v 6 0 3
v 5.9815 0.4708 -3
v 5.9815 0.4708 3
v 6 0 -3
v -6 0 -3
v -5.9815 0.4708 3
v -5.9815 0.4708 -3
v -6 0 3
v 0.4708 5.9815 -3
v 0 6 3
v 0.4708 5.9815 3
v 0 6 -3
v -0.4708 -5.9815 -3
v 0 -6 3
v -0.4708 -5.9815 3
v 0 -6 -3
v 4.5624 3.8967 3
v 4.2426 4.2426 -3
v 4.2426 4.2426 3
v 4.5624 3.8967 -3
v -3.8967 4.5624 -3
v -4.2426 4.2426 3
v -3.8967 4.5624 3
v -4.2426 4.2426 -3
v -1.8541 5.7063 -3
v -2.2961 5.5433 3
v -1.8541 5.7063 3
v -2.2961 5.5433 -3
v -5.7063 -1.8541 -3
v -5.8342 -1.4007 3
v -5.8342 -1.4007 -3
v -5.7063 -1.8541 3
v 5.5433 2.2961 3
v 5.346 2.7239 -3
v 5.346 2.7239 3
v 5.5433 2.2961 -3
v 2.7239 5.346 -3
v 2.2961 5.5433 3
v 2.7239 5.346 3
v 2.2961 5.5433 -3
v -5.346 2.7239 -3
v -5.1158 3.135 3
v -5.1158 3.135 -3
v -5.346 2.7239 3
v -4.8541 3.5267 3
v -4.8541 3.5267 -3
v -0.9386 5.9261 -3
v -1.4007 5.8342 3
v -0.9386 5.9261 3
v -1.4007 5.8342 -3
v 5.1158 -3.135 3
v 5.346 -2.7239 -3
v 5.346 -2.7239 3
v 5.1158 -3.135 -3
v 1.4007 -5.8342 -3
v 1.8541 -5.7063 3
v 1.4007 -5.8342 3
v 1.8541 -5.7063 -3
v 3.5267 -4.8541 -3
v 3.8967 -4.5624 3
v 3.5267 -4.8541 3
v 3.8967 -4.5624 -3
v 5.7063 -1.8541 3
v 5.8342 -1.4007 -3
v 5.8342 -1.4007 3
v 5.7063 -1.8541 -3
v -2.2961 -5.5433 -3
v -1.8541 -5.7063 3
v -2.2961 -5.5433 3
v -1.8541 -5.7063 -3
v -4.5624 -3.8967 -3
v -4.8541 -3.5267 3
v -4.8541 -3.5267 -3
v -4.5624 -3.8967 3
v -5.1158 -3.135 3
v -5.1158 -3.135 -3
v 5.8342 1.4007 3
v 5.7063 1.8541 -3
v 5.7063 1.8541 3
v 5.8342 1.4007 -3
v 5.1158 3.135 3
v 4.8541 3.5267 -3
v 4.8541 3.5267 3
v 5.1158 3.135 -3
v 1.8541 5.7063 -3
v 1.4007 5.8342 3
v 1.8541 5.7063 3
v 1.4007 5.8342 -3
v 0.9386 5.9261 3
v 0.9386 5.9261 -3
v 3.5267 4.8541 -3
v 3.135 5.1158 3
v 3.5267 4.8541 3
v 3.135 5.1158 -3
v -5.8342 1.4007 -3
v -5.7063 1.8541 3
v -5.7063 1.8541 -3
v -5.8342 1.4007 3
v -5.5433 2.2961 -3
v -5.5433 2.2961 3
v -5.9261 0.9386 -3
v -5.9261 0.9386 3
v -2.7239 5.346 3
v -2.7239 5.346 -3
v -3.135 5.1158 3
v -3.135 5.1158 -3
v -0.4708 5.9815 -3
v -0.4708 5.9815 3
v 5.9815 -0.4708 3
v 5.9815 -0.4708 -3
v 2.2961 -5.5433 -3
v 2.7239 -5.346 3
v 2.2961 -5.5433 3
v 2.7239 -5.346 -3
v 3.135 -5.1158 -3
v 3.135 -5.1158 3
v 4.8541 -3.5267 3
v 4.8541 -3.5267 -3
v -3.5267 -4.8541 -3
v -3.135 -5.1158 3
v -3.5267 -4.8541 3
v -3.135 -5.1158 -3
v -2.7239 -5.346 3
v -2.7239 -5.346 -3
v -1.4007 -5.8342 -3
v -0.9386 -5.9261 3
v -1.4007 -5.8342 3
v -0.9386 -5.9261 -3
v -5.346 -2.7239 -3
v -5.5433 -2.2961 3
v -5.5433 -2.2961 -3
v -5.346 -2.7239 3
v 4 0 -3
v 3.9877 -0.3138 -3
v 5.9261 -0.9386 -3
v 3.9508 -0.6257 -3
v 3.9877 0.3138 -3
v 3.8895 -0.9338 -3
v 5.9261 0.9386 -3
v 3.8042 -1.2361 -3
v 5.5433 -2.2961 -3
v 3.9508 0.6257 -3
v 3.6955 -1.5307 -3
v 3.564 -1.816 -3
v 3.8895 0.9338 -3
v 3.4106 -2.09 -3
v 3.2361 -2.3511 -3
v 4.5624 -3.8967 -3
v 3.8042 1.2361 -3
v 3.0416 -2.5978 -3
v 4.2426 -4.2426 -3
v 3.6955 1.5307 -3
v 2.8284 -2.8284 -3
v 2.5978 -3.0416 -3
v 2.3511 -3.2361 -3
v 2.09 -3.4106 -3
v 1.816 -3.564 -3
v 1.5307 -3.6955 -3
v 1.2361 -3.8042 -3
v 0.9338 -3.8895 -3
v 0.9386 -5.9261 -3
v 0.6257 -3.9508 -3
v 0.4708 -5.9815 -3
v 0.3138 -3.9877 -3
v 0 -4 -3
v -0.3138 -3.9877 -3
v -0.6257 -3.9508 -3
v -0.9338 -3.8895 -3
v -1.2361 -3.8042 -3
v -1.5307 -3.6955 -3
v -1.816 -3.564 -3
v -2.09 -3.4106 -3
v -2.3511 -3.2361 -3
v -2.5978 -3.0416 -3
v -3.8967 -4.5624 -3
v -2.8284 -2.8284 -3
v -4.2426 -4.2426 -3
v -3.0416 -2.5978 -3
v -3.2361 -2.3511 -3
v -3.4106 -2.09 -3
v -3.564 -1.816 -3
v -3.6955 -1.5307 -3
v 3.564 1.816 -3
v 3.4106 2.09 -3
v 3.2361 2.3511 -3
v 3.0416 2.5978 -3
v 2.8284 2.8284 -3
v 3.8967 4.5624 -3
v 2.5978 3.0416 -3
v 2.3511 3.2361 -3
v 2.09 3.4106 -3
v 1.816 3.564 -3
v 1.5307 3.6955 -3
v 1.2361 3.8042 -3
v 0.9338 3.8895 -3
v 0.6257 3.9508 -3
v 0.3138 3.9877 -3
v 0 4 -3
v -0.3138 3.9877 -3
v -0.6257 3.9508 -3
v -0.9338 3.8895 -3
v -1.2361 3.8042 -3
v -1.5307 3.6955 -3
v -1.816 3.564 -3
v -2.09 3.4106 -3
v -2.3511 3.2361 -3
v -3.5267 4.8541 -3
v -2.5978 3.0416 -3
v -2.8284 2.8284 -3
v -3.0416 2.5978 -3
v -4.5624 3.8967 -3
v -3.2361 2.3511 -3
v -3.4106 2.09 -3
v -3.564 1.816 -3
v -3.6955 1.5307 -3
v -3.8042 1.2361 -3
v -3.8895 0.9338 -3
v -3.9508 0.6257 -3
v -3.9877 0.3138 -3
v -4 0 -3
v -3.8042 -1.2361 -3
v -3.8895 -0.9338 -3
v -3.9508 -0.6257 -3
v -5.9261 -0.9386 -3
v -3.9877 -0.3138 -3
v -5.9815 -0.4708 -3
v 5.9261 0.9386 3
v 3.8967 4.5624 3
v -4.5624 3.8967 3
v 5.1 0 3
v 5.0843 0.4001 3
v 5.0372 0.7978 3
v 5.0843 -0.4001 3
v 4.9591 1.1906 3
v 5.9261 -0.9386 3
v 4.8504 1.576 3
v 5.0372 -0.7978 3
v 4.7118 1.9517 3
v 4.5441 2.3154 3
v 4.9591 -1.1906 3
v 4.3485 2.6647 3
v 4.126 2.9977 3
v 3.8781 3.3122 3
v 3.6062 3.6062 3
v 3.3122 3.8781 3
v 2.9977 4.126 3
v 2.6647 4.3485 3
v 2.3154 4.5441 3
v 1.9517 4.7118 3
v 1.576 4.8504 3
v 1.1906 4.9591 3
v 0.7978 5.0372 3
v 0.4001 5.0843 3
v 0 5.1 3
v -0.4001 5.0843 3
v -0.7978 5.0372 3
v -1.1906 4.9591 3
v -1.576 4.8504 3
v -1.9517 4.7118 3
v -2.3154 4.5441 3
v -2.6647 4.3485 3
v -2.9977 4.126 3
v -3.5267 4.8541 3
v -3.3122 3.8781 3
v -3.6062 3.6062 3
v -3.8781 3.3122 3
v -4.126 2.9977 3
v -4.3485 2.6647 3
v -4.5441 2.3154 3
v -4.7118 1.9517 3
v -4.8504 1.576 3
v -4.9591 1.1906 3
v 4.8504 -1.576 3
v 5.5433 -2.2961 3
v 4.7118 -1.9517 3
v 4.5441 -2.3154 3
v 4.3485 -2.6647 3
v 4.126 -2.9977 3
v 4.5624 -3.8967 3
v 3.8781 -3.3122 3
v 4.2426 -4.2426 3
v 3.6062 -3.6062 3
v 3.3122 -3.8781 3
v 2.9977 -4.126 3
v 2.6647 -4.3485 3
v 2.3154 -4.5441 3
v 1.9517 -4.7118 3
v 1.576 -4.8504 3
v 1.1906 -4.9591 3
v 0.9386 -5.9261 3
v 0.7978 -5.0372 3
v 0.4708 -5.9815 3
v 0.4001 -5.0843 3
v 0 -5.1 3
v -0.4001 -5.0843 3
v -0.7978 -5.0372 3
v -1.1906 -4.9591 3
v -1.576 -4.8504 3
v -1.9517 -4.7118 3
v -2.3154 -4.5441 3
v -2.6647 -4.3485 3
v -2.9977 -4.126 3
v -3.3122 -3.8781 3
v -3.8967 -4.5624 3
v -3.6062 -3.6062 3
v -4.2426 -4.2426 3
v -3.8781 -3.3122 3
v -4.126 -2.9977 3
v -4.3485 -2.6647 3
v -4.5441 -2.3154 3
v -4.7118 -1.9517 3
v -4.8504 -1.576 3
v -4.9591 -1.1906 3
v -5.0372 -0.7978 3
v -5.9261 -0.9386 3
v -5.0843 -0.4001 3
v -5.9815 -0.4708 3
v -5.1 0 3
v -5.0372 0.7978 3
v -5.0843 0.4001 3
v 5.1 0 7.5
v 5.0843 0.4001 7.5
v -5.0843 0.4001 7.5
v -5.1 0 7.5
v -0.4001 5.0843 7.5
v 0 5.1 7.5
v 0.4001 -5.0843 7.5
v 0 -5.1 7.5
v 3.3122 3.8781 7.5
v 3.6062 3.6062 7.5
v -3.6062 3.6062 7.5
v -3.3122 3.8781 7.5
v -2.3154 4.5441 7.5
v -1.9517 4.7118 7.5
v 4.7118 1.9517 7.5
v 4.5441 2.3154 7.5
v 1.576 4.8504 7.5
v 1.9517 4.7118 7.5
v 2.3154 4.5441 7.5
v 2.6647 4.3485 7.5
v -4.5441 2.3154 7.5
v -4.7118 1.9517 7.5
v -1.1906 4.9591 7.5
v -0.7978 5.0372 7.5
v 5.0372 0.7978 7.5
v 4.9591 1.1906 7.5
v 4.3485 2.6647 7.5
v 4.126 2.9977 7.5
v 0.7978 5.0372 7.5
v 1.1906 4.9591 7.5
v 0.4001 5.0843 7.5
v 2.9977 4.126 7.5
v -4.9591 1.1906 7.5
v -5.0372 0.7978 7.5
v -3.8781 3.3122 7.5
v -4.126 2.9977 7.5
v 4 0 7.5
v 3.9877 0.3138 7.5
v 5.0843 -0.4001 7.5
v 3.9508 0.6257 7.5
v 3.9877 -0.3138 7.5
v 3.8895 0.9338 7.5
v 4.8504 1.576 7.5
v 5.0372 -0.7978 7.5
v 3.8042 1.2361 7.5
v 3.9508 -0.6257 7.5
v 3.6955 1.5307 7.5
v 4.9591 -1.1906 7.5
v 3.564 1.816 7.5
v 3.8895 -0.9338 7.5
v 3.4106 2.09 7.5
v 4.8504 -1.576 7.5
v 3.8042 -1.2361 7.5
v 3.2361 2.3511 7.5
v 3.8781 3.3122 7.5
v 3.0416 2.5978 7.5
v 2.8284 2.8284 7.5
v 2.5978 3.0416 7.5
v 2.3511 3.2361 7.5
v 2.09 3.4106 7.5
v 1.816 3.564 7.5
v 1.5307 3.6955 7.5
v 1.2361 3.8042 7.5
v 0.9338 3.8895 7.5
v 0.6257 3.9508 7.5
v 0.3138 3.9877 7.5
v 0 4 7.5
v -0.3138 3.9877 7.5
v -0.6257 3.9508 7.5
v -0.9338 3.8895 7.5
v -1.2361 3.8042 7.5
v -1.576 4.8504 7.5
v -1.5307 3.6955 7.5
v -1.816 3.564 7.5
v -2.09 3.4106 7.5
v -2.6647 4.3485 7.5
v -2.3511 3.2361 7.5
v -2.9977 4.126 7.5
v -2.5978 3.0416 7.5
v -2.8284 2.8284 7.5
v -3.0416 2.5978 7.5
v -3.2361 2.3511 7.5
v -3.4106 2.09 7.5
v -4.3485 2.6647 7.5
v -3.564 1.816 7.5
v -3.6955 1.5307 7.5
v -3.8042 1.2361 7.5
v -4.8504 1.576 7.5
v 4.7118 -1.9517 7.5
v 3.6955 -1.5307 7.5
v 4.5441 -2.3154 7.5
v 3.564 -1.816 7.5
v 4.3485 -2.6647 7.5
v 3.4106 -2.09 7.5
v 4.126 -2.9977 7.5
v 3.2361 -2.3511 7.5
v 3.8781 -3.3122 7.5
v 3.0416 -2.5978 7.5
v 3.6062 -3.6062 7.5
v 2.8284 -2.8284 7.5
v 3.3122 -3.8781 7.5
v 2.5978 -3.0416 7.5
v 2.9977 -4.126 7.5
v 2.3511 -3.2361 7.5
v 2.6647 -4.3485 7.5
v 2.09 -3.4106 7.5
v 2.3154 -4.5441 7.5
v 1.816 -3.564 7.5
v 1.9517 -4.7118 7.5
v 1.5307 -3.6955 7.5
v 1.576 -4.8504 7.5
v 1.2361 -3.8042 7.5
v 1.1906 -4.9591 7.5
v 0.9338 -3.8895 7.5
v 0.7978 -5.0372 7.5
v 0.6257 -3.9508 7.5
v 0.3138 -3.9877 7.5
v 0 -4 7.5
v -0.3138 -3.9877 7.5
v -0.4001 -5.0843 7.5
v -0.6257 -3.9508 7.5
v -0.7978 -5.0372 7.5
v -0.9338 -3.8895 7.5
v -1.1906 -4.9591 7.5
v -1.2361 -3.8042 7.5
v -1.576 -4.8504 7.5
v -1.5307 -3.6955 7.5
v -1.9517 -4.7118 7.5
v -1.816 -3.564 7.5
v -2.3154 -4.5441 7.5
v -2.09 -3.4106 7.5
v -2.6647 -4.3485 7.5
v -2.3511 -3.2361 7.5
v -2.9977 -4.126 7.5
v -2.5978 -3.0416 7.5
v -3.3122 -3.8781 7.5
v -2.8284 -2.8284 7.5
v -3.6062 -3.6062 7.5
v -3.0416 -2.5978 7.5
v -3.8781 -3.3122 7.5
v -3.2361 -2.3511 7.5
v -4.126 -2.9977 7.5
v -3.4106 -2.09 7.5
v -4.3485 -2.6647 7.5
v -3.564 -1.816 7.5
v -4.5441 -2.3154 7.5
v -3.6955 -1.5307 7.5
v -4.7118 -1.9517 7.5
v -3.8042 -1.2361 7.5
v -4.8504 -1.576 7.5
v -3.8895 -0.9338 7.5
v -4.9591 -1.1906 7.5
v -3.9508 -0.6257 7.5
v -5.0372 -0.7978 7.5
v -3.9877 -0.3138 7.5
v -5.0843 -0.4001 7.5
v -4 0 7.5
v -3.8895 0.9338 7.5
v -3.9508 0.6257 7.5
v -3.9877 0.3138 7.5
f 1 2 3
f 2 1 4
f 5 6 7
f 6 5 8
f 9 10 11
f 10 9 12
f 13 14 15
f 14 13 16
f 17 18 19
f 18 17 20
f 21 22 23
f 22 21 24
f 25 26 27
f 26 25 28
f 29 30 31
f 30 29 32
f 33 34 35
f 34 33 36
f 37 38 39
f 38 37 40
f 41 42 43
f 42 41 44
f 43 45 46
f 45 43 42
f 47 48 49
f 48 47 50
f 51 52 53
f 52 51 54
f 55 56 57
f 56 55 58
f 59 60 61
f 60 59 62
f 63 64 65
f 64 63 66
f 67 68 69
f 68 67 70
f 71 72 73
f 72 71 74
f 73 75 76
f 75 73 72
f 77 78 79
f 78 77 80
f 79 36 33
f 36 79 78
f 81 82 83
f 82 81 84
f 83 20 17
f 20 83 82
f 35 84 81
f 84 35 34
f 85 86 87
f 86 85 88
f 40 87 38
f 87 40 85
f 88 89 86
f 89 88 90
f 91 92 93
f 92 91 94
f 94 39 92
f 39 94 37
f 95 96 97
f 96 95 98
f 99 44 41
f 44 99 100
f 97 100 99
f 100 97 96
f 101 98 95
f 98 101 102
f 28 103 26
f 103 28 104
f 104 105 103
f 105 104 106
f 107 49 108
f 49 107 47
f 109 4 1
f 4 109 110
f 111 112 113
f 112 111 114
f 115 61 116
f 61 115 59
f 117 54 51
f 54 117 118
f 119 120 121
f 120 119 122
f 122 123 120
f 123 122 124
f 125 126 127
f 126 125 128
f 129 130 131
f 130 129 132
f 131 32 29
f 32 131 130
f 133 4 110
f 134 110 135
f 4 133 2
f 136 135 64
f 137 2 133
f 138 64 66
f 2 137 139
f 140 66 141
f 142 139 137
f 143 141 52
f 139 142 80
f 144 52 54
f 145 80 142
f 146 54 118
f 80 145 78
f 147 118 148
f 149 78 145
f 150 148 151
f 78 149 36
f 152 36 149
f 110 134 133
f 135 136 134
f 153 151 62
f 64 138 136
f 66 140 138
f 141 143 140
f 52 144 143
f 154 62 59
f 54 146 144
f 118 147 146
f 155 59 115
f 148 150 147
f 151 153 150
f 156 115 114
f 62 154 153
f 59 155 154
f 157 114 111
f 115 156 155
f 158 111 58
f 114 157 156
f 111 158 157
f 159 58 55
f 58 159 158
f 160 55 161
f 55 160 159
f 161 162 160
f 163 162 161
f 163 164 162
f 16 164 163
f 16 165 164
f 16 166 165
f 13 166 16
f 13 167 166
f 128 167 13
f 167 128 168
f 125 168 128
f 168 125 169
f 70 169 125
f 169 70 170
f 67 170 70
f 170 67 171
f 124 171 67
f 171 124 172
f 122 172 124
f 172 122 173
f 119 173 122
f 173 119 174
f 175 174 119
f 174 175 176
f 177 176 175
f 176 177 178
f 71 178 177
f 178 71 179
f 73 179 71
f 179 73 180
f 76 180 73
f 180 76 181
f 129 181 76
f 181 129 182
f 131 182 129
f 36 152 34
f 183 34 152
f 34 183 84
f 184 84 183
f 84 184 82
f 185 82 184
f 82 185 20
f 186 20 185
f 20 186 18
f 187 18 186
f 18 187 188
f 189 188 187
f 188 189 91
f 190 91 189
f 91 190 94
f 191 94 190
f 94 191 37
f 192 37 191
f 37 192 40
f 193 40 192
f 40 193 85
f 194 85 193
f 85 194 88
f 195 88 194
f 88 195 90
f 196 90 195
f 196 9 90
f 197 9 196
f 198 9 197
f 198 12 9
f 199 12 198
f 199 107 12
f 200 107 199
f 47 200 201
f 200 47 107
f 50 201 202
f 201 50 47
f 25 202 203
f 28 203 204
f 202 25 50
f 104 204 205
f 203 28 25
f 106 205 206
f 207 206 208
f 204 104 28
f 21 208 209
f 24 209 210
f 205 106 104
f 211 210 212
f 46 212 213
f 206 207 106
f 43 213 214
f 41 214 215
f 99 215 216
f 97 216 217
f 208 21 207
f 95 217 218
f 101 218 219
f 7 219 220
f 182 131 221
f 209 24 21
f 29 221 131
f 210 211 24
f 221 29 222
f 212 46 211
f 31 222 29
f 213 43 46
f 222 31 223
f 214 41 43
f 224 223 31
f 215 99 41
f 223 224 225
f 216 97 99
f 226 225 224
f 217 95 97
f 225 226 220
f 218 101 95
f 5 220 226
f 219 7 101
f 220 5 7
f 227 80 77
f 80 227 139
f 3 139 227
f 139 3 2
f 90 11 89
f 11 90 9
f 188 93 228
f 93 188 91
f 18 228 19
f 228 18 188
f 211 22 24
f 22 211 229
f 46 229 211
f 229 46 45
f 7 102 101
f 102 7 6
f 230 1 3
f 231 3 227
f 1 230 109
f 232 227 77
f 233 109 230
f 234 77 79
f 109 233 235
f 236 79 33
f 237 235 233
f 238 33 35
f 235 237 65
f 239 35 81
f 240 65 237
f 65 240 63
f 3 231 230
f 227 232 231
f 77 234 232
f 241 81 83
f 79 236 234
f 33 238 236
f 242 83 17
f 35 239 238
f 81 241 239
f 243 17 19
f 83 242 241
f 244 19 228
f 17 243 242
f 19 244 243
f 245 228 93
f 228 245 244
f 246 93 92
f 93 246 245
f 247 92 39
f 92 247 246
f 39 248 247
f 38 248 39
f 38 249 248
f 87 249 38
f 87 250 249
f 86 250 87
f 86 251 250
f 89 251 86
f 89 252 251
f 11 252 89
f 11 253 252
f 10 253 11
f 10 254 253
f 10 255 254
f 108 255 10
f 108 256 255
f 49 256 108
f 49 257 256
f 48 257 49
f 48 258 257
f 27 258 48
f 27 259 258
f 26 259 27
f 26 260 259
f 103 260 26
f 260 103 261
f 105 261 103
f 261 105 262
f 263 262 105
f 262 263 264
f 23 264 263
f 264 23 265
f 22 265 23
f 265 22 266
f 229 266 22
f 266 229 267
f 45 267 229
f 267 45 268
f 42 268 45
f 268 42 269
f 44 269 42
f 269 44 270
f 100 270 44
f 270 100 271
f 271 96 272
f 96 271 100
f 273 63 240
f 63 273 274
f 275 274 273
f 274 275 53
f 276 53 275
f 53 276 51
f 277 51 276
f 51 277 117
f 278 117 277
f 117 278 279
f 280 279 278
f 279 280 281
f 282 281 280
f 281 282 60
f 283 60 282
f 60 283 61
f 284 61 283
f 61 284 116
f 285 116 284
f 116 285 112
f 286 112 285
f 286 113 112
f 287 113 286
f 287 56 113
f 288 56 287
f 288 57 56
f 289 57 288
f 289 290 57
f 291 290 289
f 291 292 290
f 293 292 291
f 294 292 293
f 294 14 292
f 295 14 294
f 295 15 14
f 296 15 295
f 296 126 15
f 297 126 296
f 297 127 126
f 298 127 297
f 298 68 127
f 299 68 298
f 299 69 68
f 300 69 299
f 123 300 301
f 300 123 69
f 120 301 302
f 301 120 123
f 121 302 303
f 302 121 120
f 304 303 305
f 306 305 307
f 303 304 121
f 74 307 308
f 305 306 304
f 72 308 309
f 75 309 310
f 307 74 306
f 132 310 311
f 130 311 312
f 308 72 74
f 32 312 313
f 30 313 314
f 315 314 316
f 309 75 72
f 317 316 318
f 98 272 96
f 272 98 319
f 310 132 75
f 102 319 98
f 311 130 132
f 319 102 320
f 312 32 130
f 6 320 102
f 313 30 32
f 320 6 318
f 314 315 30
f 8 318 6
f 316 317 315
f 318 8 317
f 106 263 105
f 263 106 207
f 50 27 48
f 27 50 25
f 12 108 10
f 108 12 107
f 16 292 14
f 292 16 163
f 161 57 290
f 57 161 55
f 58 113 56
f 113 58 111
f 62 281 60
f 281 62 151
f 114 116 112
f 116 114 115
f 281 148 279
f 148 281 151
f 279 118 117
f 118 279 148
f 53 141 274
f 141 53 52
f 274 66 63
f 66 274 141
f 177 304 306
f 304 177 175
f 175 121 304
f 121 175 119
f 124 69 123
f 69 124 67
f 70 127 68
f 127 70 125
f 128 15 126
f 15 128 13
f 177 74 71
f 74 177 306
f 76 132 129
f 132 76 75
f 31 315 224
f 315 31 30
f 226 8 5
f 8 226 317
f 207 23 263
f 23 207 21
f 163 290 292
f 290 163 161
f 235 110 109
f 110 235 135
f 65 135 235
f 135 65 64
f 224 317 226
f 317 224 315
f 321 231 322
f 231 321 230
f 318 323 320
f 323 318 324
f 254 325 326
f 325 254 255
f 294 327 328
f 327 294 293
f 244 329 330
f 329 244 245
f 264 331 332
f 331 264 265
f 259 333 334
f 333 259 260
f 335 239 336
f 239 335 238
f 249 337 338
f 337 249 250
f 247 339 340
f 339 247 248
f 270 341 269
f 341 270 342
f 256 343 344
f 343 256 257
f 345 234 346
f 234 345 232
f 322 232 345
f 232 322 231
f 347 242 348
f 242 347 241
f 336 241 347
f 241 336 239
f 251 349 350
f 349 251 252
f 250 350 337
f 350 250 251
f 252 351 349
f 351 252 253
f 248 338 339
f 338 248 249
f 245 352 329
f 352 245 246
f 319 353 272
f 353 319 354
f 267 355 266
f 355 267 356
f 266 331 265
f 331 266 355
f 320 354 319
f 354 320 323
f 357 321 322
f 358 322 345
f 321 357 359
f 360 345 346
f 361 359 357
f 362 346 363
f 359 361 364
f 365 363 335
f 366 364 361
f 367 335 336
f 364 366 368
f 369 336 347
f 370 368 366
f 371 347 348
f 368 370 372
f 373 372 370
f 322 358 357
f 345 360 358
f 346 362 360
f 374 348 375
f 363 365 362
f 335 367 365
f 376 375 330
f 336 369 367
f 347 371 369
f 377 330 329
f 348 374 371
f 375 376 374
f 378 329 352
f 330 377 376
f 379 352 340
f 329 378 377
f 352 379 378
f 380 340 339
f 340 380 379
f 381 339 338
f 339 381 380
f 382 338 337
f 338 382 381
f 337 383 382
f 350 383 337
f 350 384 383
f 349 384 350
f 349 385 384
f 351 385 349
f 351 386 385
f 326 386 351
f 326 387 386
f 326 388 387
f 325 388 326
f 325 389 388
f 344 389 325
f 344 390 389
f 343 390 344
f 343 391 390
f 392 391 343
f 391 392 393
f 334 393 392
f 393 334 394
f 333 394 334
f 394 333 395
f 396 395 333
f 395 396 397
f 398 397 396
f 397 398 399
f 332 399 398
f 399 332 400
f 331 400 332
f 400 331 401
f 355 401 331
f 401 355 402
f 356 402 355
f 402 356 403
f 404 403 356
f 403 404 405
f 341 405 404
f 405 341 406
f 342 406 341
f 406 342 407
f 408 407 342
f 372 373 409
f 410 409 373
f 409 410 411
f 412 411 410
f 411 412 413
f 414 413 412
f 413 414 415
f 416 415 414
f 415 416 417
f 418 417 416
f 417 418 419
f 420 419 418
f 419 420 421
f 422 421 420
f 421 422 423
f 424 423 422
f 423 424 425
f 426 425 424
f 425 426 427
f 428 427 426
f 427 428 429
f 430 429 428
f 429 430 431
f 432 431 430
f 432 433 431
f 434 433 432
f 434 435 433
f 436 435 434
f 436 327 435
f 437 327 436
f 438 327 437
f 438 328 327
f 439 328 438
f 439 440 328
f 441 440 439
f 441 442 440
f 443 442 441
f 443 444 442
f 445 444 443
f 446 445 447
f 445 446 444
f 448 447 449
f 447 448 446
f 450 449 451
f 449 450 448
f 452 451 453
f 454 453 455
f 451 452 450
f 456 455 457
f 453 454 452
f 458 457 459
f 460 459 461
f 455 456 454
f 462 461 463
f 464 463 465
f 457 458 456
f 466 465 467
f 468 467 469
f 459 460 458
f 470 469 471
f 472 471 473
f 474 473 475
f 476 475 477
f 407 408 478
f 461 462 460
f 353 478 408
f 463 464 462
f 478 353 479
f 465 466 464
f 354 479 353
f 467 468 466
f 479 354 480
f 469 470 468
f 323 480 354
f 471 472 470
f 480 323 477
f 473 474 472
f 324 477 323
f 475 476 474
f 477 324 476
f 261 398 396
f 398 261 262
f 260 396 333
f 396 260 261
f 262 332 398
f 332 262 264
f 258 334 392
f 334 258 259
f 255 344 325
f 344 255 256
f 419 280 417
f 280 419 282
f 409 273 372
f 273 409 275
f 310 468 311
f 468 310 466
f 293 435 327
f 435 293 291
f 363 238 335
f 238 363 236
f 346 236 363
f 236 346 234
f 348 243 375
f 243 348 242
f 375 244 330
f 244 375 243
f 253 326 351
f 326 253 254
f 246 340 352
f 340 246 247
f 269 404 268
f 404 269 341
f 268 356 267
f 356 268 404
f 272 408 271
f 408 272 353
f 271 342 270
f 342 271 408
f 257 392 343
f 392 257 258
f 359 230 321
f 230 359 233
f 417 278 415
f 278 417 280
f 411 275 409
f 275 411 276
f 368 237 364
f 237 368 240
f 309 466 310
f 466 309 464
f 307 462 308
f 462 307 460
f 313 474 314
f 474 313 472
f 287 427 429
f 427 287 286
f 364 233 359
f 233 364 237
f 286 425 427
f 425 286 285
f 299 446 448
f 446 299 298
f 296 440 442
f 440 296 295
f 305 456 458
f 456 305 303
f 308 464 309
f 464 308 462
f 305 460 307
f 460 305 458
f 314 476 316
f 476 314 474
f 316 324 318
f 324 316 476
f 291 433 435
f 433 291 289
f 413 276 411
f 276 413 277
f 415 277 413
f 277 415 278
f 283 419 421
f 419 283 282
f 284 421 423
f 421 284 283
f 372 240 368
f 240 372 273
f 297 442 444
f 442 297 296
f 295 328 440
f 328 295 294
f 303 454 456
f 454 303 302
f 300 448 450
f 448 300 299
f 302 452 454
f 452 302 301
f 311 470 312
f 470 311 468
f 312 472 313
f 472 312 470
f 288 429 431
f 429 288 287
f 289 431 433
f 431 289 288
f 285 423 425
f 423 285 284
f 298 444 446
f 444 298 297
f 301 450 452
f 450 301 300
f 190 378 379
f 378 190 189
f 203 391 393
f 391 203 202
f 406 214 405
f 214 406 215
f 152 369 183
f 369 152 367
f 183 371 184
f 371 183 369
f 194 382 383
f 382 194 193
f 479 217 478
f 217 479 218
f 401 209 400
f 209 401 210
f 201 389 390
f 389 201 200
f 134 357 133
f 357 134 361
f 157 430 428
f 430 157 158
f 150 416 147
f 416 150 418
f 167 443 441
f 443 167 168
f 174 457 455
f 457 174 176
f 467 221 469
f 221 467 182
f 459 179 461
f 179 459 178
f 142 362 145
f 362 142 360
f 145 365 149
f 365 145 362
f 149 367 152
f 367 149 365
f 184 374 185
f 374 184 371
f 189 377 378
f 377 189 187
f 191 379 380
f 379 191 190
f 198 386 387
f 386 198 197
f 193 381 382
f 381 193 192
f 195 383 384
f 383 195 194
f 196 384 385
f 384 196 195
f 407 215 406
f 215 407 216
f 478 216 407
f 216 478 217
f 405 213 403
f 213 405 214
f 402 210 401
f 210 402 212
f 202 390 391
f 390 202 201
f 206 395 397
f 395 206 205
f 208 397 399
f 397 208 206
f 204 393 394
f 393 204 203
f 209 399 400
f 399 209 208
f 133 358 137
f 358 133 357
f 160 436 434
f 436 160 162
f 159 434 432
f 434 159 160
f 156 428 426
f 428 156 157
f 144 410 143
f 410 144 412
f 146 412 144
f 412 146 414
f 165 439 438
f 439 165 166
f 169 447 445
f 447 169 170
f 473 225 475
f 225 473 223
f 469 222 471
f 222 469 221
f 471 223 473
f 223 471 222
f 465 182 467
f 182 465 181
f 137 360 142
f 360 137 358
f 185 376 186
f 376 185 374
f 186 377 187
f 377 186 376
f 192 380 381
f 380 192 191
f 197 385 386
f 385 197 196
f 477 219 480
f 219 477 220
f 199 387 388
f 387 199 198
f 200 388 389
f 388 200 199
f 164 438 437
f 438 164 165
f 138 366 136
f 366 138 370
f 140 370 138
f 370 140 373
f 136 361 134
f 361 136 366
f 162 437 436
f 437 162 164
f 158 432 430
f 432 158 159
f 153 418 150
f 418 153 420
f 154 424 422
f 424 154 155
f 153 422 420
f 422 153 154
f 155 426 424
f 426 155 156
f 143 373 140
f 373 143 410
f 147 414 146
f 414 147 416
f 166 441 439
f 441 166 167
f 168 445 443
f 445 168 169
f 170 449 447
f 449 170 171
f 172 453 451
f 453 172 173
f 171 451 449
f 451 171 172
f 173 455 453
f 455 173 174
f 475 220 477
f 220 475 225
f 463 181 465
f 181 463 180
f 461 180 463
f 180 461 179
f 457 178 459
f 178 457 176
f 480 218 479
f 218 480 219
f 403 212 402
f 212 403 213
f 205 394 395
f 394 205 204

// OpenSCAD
difference() {

union() {
    
    cylinder(r=6, h=6, center=true, $fn=80);
    translate([0,0,5]) cylinder(r=5.1, h=5, center=true, $fn=80);
    
}
    cylinder(r=4, h=20, center=true, $fn=80);

}
